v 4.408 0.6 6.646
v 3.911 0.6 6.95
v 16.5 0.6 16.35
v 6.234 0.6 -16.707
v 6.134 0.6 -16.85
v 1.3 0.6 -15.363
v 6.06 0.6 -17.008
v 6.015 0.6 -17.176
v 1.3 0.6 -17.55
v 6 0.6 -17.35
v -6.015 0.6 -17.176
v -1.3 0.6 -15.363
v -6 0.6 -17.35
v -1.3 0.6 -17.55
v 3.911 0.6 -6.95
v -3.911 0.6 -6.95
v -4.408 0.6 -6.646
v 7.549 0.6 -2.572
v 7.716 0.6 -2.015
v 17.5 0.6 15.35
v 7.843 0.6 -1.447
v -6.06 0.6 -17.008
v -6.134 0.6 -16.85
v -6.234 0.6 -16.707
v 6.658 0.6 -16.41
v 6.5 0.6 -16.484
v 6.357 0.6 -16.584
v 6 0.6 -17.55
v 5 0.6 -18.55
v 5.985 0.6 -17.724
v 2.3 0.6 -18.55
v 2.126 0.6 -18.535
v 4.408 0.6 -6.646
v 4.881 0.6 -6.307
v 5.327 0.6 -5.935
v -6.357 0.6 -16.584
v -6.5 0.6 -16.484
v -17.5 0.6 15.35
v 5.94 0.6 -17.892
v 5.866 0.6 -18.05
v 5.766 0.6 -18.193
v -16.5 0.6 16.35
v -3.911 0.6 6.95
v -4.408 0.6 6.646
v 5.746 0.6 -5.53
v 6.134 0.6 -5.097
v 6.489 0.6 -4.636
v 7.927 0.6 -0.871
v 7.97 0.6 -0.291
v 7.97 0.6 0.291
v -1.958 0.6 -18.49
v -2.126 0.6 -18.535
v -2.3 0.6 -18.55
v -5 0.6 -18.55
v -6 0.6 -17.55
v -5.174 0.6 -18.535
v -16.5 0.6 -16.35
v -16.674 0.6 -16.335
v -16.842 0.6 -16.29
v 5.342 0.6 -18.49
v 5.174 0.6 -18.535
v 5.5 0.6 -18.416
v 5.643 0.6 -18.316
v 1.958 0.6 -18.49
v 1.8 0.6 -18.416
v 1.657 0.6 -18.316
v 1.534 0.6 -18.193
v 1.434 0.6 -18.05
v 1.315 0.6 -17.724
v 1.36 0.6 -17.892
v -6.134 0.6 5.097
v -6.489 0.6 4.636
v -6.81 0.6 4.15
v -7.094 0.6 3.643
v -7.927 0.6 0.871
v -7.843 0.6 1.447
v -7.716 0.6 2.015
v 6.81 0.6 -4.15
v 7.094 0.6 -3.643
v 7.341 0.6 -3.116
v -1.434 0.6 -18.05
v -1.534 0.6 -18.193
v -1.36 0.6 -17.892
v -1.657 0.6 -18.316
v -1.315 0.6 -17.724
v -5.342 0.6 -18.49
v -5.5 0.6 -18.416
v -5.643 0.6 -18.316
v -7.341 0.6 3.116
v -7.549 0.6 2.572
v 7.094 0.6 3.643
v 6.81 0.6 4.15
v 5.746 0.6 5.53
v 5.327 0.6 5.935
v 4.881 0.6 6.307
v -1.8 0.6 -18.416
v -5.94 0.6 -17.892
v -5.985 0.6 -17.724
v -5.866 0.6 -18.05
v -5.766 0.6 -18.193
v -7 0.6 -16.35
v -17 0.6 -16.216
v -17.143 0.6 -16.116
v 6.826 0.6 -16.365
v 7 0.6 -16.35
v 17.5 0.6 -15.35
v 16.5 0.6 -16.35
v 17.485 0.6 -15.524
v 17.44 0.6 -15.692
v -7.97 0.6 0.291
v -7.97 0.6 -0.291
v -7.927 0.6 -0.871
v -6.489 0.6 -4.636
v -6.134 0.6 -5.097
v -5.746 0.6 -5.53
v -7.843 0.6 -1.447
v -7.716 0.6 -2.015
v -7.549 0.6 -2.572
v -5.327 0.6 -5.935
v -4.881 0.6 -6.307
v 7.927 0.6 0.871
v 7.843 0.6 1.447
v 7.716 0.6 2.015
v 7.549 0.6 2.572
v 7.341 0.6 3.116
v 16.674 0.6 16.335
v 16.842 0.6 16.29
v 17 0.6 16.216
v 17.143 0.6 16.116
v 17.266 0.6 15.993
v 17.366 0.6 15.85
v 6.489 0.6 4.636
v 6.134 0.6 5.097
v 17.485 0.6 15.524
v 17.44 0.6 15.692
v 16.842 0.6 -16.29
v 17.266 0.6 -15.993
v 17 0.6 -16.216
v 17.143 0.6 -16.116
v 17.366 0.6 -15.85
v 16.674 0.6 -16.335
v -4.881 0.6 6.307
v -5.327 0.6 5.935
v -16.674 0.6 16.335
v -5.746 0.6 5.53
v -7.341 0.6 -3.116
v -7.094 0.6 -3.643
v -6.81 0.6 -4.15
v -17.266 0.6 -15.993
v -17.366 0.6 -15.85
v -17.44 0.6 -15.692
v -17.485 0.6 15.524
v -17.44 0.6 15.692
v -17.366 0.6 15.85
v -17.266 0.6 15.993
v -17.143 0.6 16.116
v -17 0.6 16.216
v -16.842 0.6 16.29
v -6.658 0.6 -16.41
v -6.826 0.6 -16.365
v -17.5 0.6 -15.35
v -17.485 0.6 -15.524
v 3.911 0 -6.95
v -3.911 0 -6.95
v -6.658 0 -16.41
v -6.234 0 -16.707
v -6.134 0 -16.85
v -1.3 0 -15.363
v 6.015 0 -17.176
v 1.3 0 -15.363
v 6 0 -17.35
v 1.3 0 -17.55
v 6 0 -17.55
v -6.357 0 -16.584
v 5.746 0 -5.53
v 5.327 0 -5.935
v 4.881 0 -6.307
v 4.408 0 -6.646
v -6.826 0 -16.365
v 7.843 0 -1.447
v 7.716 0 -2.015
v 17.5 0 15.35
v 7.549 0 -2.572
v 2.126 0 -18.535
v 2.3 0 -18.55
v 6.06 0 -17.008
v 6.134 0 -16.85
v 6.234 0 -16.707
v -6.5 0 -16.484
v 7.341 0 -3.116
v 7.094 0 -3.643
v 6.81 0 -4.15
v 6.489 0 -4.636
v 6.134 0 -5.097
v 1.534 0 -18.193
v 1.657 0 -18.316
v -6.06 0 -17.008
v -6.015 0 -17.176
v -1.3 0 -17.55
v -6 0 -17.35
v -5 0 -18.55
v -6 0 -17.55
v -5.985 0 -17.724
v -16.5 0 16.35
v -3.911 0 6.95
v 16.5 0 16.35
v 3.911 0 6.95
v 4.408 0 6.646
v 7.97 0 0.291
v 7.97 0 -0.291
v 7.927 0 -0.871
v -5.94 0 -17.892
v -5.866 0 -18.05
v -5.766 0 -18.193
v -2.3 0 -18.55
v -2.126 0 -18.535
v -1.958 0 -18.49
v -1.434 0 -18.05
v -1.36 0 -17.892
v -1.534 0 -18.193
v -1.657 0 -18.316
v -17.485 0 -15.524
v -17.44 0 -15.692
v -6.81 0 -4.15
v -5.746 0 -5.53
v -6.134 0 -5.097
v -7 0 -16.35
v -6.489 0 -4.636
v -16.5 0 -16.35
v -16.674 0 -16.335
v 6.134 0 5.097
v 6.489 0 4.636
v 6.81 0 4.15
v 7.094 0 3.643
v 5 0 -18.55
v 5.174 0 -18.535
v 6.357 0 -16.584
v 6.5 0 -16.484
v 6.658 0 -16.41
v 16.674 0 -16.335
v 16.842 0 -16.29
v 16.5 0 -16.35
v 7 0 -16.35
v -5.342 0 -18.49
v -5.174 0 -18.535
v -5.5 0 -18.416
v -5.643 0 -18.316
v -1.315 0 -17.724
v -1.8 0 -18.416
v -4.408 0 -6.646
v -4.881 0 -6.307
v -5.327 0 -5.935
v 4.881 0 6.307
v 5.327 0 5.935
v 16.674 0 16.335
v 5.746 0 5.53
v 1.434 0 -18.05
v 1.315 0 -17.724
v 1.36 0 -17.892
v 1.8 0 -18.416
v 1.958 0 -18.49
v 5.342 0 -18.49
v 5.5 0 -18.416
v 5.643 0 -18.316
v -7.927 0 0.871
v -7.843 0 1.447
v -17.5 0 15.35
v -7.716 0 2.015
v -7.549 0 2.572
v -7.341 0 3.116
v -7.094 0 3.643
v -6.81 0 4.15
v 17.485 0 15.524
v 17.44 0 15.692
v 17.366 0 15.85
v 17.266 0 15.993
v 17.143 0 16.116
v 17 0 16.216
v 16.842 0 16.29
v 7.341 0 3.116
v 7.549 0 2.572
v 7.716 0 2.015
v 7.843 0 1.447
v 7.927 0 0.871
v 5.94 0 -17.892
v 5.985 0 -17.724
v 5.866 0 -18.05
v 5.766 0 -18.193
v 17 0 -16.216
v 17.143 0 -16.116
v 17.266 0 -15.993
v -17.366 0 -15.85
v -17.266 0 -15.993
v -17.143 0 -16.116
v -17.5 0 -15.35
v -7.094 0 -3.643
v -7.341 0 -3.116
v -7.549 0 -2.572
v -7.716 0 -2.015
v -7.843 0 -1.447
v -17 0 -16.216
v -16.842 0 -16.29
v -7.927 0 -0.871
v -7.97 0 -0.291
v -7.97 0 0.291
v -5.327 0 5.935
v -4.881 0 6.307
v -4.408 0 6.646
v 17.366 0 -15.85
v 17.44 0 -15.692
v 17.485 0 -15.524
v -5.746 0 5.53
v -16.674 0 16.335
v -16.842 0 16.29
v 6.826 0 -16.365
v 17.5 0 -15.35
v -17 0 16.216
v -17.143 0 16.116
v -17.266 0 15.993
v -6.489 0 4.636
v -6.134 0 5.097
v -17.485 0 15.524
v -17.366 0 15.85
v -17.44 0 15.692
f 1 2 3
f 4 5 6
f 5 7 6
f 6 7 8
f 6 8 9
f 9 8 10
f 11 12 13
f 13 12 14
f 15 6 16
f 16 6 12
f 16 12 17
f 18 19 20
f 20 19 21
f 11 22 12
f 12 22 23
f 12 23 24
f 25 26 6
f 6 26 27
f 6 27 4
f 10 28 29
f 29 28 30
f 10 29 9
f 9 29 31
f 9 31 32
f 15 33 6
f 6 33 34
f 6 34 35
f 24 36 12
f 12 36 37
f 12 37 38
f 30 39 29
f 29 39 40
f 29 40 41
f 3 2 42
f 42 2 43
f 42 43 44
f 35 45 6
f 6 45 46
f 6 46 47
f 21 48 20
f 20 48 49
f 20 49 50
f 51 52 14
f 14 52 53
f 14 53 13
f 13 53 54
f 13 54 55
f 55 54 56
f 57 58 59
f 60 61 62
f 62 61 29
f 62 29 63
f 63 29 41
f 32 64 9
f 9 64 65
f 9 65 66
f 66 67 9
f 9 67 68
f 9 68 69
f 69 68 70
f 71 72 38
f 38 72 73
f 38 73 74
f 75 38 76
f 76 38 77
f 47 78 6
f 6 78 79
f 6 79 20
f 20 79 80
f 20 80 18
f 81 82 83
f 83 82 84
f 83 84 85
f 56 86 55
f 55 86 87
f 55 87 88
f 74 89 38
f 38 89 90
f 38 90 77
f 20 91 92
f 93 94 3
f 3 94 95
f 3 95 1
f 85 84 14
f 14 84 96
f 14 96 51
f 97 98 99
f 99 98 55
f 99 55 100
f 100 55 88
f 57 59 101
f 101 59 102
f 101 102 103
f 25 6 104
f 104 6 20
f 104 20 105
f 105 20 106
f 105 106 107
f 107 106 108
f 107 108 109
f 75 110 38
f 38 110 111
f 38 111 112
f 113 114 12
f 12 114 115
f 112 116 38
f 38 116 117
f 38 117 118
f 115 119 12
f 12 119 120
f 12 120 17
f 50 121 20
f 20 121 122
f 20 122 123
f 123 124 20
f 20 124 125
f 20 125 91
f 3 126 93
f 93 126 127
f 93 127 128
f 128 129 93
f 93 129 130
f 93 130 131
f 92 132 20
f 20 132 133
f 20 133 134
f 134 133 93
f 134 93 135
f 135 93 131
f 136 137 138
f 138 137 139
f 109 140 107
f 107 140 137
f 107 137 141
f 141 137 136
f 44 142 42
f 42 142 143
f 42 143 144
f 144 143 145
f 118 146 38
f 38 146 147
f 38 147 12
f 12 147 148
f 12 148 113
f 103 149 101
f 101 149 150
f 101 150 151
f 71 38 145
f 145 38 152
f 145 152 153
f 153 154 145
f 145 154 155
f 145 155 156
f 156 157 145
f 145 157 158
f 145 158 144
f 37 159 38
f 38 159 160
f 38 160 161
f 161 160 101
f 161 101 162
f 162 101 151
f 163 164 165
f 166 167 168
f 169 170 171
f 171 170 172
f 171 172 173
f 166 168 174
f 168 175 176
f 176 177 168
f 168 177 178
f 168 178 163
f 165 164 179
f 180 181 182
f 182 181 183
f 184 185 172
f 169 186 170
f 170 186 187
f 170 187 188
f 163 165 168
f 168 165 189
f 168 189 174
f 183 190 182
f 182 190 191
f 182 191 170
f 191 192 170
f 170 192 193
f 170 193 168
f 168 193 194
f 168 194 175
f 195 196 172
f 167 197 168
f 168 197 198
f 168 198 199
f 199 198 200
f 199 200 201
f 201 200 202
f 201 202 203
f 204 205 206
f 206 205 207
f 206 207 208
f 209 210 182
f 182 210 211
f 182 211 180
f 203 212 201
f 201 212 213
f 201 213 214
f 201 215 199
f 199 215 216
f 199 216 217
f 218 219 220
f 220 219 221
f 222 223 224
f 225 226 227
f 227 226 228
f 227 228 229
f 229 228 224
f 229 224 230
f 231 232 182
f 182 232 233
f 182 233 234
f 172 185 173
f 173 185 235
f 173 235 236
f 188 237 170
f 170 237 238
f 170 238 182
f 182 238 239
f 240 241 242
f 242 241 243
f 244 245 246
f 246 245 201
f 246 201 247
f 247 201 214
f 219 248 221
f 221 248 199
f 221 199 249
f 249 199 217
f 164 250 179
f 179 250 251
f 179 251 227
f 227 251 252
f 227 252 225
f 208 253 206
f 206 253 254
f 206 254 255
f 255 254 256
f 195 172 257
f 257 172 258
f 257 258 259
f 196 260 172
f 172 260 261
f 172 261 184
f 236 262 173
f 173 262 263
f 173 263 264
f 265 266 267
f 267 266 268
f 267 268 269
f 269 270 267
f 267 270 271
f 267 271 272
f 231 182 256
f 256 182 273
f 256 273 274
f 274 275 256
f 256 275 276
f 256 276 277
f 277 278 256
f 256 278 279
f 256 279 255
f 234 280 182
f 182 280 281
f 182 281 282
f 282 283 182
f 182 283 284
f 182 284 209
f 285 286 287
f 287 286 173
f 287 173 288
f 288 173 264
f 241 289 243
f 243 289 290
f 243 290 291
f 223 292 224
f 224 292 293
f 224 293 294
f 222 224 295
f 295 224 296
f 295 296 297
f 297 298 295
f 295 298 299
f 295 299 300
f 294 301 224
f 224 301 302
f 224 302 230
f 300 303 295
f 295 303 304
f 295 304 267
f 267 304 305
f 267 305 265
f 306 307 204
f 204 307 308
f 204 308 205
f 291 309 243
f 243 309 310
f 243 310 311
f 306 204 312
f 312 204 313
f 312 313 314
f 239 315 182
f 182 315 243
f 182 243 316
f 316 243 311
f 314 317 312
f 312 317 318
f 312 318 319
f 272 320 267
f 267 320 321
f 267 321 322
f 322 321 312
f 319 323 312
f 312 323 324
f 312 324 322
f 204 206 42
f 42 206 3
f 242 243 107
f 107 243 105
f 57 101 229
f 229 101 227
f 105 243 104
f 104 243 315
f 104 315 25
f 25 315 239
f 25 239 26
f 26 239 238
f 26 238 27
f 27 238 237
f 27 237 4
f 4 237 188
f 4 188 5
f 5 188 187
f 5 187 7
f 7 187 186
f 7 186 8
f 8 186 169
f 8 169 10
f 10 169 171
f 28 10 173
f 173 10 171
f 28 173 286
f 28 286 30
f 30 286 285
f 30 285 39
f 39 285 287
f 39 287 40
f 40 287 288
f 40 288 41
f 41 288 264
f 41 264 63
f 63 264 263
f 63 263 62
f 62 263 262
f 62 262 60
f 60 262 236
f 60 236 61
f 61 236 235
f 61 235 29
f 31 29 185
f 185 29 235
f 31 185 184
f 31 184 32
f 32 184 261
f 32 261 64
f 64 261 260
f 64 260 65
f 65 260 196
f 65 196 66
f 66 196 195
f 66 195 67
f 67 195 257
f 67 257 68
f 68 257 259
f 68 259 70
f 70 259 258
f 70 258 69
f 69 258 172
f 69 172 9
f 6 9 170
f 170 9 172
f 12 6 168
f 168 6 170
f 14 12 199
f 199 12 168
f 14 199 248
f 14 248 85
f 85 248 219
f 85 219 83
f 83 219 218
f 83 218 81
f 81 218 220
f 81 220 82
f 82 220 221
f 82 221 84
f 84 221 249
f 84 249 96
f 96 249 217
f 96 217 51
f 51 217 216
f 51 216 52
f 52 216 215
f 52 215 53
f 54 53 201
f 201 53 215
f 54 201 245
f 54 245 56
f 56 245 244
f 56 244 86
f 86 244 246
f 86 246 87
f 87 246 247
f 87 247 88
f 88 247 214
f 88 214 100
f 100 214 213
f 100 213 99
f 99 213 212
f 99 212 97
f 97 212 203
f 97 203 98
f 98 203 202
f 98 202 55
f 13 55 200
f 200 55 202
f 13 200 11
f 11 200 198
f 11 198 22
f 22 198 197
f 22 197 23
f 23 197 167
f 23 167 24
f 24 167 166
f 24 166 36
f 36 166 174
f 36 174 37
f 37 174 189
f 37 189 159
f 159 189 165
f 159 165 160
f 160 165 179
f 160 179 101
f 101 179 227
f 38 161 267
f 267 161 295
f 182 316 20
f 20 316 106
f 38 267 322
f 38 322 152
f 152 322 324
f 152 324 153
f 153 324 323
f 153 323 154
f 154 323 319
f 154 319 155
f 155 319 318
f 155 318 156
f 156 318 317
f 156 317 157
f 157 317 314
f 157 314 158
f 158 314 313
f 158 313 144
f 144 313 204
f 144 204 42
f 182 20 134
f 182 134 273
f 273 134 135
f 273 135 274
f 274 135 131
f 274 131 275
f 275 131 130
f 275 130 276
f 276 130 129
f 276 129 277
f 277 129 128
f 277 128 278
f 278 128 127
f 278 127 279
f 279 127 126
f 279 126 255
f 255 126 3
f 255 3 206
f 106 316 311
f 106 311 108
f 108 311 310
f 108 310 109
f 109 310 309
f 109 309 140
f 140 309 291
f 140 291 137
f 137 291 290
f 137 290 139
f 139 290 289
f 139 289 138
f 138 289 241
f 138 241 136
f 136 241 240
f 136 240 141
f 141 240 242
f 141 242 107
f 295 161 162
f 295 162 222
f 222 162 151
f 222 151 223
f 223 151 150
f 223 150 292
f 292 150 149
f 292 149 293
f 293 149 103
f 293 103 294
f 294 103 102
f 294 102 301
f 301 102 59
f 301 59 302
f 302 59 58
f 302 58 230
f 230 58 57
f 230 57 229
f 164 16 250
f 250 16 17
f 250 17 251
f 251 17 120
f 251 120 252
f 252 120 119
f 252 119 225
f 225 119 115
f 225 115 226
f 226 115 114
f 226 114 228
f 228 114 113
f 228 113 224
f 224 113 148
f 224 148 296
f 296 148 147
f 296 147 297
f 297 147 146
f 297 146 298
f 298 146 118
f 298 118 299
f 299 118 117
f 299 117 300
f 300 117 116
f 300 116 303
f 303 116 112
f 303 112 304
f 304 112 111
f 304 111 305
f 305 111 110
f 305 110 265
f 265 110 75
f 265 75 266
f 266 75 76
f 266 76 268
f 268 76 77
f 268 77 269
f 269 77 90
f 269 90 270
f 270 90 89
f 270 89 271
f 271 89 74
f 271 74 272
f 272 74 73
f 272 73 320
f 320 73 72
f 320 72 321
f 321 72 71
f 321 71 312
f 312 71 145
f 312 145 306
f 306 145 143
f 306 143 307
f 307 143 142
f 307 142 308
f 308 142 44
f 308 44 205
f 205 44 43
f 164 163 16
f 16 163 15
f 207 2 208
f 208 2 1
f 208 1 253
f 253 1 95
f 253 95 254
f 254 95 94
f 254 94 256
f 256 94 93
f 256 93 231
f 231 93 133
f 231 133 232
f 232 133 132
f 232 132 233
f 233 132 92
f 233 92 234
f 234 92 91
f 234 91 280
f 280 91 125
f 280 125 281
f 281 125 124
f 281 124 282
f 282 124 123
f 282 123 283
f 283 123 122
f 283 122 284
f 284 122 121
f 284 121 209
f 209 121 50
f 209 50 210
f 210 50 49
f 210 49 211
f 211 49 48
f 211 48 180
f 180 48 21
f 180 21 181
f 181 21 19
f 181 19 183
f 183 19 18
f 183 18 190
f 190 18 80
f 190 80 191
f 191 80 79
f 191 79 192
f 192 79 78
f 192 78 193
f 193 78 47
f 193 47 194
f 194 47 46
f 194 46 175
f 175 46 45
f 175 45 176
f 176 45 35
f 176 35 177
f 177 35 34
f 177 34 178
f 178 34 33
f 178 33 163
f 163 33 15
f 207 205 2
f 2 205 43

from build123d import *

# Parameters (mm, degrees)
BOSS_EXTRU_1_DEPTH      = 0.6
ESQUISSE2_W             = 117.961397218
ESQUISSE2_H             = 91.146128779
ESQUISSE2_W_2           = 35
ESQUISSE2_H_2           = 51.049946684
ENL_V_MAT_EXTRU_1_DEPTH = 47.375774926
CONG_1_R                = 1
ENL_V_MAT_EXTRU_2_DEPTH = 26.509067015


with BuildPart() as part:
    # Esquisse1 → Boss.-Extru.1 (new body)
    with BuildSketch(Plane(origin=(0, 0, 0), x_dir=(1, 0, 0), z_dir=(0, 1, 0))):
        with BuildLine():
            Line((7, 16.35), (39.5, 16.35))
            ThreePointArc((39.5, 16.35), (41.621320344, 15.471320344), (42.5, 13.35))
            Line((42.5, 13.35), (42.5, -13.35))
            ThreePointArc((42.5, -13.35), (41.621320344, -15.471320344), (39.5, -16.35))
            Line((39.5, -16.35), (-39.5, -16.35))
            ThreePointArc((-39.5, -16.35), (-41.621320344, -15.471320344), (-42.5, -13.35))
            Line((-42.5, -13.35), (-42.5, 13.35))
            ThreePointArc((-42.5, 13.35), (-41.621320344, 15.471320344), (-39.5, 16.35))
            Line((-39.5, 16.35), (-7, 16.35))
            ThreePointArc((-7, 16.35), (-6.292893219, 16.642893219), (-6, 17.35))
            Line((-6, 17.35), (-6, 17.55))
            ThreePointArc((-6, 17.55), (-5.707106781, 18.257106781), (-5, 18.55))
            Line((-5, 18.55), (-2.3, 18.55))
            ThreePointArc((-2.3, 18.55), (-1.592893219, 18.257106781), (-1.3, 17.55))
            Line((-1.3, 17.55), (-1.3, 15.362970147))
            Line((-1.3, 15.362970147), (1.3, 15.362970147))
            Line((1.3, 15.362970147), (1.3, 17.55))
            ThreePointArc((1.3, 17.55), (1.592893219, 18.257106781), (2.3, 18.55))
            Line((2.3, 18.55), (5, 18.55))
            ThreePointArc((5, 18.55), (5.707106781, 18.257106781), (6, 17.55))
            Line((6, 17.55), (6, 17.35))
            ThreePointArc((6, 17.35), (6.292893219, 16.642893219), (7, 16.35))
        make_face()
        with BuildLine():
            Line((-3.87177285, 6.8), (3.87177285, 6.8))
            ThreePointArc((3.87177285, 6.8), (7.825, 0), (3.87177285, -6.8))
            Line((3.87177285, -6.8), (-3.87177285, -6.8))
            ThreePointArc((-3.87177285, -6.8), (-7.825, 0), (-3.87177285, 6.8))
        make_face(mode=Mode.SUBTRACT)
    extrude(amount=BOSS_EXTRU_1_DEPTH)

    # Esquisse2 → Enlèv. mat.-Extru.1 (cut, through all)
    with BuildSketch(Plane(origin=(0, 0.6, 0), x_dir=(1, 0, 0), z_dir=(0, 1, 0))):
        with Locations((-0.999168038, 1.097201222)):
            Rectangle(ESQUISSE2_W, ESQUISSE2_H)
        Rectangle(ESQUISSE2_W_2, ESQUISSE2_H_2, mode=Mode.SUBTRACT)
    extrude(amount=-ENL_V_MAT_EXTRU_1_DEPTH, mode=Mode.SUBTRACT)

    # Congé1
    cong_1_edges = [part.edges().sort_by_distance(p)[0] for p in [
        (-17.5, 0.3, -16.35),
        (17.5, 0.3, -16.35),
        (17.5, 0.3, 16.35),
        (-17.5, 0.3, 16.35),
    ]]
    fillet(cong_1_edges, radius=CONG_1_R)

    # Esquisse3 → Enlèv. mat.-Extru.2 (cut, through all)
    with BuildSketch(Plane(origin=(0, 0.6, 0), x_dir=(1, 0, 0), z_dir=(0, 1, 0))):
        with BuildLine():
            Line((-3.911281759, -6.95), (3.911281759, -6.95))
            ThreePointArc((3.911281759, -6.95), (7.975, 0), (3.911281759, 6.95))
            Line((3.911281759, 6.95), (-3.911281759, 6.95))
            ThreePointArc((-3.911281759, 6.95), (-7.975, 0), (-3.911281759, -6.95))
        make_face()
    extrude(amount=-ENL_V_MAT_EXTRU_2_DEPTH, mode=Mode.SUBTRACT)


solid = part.part
